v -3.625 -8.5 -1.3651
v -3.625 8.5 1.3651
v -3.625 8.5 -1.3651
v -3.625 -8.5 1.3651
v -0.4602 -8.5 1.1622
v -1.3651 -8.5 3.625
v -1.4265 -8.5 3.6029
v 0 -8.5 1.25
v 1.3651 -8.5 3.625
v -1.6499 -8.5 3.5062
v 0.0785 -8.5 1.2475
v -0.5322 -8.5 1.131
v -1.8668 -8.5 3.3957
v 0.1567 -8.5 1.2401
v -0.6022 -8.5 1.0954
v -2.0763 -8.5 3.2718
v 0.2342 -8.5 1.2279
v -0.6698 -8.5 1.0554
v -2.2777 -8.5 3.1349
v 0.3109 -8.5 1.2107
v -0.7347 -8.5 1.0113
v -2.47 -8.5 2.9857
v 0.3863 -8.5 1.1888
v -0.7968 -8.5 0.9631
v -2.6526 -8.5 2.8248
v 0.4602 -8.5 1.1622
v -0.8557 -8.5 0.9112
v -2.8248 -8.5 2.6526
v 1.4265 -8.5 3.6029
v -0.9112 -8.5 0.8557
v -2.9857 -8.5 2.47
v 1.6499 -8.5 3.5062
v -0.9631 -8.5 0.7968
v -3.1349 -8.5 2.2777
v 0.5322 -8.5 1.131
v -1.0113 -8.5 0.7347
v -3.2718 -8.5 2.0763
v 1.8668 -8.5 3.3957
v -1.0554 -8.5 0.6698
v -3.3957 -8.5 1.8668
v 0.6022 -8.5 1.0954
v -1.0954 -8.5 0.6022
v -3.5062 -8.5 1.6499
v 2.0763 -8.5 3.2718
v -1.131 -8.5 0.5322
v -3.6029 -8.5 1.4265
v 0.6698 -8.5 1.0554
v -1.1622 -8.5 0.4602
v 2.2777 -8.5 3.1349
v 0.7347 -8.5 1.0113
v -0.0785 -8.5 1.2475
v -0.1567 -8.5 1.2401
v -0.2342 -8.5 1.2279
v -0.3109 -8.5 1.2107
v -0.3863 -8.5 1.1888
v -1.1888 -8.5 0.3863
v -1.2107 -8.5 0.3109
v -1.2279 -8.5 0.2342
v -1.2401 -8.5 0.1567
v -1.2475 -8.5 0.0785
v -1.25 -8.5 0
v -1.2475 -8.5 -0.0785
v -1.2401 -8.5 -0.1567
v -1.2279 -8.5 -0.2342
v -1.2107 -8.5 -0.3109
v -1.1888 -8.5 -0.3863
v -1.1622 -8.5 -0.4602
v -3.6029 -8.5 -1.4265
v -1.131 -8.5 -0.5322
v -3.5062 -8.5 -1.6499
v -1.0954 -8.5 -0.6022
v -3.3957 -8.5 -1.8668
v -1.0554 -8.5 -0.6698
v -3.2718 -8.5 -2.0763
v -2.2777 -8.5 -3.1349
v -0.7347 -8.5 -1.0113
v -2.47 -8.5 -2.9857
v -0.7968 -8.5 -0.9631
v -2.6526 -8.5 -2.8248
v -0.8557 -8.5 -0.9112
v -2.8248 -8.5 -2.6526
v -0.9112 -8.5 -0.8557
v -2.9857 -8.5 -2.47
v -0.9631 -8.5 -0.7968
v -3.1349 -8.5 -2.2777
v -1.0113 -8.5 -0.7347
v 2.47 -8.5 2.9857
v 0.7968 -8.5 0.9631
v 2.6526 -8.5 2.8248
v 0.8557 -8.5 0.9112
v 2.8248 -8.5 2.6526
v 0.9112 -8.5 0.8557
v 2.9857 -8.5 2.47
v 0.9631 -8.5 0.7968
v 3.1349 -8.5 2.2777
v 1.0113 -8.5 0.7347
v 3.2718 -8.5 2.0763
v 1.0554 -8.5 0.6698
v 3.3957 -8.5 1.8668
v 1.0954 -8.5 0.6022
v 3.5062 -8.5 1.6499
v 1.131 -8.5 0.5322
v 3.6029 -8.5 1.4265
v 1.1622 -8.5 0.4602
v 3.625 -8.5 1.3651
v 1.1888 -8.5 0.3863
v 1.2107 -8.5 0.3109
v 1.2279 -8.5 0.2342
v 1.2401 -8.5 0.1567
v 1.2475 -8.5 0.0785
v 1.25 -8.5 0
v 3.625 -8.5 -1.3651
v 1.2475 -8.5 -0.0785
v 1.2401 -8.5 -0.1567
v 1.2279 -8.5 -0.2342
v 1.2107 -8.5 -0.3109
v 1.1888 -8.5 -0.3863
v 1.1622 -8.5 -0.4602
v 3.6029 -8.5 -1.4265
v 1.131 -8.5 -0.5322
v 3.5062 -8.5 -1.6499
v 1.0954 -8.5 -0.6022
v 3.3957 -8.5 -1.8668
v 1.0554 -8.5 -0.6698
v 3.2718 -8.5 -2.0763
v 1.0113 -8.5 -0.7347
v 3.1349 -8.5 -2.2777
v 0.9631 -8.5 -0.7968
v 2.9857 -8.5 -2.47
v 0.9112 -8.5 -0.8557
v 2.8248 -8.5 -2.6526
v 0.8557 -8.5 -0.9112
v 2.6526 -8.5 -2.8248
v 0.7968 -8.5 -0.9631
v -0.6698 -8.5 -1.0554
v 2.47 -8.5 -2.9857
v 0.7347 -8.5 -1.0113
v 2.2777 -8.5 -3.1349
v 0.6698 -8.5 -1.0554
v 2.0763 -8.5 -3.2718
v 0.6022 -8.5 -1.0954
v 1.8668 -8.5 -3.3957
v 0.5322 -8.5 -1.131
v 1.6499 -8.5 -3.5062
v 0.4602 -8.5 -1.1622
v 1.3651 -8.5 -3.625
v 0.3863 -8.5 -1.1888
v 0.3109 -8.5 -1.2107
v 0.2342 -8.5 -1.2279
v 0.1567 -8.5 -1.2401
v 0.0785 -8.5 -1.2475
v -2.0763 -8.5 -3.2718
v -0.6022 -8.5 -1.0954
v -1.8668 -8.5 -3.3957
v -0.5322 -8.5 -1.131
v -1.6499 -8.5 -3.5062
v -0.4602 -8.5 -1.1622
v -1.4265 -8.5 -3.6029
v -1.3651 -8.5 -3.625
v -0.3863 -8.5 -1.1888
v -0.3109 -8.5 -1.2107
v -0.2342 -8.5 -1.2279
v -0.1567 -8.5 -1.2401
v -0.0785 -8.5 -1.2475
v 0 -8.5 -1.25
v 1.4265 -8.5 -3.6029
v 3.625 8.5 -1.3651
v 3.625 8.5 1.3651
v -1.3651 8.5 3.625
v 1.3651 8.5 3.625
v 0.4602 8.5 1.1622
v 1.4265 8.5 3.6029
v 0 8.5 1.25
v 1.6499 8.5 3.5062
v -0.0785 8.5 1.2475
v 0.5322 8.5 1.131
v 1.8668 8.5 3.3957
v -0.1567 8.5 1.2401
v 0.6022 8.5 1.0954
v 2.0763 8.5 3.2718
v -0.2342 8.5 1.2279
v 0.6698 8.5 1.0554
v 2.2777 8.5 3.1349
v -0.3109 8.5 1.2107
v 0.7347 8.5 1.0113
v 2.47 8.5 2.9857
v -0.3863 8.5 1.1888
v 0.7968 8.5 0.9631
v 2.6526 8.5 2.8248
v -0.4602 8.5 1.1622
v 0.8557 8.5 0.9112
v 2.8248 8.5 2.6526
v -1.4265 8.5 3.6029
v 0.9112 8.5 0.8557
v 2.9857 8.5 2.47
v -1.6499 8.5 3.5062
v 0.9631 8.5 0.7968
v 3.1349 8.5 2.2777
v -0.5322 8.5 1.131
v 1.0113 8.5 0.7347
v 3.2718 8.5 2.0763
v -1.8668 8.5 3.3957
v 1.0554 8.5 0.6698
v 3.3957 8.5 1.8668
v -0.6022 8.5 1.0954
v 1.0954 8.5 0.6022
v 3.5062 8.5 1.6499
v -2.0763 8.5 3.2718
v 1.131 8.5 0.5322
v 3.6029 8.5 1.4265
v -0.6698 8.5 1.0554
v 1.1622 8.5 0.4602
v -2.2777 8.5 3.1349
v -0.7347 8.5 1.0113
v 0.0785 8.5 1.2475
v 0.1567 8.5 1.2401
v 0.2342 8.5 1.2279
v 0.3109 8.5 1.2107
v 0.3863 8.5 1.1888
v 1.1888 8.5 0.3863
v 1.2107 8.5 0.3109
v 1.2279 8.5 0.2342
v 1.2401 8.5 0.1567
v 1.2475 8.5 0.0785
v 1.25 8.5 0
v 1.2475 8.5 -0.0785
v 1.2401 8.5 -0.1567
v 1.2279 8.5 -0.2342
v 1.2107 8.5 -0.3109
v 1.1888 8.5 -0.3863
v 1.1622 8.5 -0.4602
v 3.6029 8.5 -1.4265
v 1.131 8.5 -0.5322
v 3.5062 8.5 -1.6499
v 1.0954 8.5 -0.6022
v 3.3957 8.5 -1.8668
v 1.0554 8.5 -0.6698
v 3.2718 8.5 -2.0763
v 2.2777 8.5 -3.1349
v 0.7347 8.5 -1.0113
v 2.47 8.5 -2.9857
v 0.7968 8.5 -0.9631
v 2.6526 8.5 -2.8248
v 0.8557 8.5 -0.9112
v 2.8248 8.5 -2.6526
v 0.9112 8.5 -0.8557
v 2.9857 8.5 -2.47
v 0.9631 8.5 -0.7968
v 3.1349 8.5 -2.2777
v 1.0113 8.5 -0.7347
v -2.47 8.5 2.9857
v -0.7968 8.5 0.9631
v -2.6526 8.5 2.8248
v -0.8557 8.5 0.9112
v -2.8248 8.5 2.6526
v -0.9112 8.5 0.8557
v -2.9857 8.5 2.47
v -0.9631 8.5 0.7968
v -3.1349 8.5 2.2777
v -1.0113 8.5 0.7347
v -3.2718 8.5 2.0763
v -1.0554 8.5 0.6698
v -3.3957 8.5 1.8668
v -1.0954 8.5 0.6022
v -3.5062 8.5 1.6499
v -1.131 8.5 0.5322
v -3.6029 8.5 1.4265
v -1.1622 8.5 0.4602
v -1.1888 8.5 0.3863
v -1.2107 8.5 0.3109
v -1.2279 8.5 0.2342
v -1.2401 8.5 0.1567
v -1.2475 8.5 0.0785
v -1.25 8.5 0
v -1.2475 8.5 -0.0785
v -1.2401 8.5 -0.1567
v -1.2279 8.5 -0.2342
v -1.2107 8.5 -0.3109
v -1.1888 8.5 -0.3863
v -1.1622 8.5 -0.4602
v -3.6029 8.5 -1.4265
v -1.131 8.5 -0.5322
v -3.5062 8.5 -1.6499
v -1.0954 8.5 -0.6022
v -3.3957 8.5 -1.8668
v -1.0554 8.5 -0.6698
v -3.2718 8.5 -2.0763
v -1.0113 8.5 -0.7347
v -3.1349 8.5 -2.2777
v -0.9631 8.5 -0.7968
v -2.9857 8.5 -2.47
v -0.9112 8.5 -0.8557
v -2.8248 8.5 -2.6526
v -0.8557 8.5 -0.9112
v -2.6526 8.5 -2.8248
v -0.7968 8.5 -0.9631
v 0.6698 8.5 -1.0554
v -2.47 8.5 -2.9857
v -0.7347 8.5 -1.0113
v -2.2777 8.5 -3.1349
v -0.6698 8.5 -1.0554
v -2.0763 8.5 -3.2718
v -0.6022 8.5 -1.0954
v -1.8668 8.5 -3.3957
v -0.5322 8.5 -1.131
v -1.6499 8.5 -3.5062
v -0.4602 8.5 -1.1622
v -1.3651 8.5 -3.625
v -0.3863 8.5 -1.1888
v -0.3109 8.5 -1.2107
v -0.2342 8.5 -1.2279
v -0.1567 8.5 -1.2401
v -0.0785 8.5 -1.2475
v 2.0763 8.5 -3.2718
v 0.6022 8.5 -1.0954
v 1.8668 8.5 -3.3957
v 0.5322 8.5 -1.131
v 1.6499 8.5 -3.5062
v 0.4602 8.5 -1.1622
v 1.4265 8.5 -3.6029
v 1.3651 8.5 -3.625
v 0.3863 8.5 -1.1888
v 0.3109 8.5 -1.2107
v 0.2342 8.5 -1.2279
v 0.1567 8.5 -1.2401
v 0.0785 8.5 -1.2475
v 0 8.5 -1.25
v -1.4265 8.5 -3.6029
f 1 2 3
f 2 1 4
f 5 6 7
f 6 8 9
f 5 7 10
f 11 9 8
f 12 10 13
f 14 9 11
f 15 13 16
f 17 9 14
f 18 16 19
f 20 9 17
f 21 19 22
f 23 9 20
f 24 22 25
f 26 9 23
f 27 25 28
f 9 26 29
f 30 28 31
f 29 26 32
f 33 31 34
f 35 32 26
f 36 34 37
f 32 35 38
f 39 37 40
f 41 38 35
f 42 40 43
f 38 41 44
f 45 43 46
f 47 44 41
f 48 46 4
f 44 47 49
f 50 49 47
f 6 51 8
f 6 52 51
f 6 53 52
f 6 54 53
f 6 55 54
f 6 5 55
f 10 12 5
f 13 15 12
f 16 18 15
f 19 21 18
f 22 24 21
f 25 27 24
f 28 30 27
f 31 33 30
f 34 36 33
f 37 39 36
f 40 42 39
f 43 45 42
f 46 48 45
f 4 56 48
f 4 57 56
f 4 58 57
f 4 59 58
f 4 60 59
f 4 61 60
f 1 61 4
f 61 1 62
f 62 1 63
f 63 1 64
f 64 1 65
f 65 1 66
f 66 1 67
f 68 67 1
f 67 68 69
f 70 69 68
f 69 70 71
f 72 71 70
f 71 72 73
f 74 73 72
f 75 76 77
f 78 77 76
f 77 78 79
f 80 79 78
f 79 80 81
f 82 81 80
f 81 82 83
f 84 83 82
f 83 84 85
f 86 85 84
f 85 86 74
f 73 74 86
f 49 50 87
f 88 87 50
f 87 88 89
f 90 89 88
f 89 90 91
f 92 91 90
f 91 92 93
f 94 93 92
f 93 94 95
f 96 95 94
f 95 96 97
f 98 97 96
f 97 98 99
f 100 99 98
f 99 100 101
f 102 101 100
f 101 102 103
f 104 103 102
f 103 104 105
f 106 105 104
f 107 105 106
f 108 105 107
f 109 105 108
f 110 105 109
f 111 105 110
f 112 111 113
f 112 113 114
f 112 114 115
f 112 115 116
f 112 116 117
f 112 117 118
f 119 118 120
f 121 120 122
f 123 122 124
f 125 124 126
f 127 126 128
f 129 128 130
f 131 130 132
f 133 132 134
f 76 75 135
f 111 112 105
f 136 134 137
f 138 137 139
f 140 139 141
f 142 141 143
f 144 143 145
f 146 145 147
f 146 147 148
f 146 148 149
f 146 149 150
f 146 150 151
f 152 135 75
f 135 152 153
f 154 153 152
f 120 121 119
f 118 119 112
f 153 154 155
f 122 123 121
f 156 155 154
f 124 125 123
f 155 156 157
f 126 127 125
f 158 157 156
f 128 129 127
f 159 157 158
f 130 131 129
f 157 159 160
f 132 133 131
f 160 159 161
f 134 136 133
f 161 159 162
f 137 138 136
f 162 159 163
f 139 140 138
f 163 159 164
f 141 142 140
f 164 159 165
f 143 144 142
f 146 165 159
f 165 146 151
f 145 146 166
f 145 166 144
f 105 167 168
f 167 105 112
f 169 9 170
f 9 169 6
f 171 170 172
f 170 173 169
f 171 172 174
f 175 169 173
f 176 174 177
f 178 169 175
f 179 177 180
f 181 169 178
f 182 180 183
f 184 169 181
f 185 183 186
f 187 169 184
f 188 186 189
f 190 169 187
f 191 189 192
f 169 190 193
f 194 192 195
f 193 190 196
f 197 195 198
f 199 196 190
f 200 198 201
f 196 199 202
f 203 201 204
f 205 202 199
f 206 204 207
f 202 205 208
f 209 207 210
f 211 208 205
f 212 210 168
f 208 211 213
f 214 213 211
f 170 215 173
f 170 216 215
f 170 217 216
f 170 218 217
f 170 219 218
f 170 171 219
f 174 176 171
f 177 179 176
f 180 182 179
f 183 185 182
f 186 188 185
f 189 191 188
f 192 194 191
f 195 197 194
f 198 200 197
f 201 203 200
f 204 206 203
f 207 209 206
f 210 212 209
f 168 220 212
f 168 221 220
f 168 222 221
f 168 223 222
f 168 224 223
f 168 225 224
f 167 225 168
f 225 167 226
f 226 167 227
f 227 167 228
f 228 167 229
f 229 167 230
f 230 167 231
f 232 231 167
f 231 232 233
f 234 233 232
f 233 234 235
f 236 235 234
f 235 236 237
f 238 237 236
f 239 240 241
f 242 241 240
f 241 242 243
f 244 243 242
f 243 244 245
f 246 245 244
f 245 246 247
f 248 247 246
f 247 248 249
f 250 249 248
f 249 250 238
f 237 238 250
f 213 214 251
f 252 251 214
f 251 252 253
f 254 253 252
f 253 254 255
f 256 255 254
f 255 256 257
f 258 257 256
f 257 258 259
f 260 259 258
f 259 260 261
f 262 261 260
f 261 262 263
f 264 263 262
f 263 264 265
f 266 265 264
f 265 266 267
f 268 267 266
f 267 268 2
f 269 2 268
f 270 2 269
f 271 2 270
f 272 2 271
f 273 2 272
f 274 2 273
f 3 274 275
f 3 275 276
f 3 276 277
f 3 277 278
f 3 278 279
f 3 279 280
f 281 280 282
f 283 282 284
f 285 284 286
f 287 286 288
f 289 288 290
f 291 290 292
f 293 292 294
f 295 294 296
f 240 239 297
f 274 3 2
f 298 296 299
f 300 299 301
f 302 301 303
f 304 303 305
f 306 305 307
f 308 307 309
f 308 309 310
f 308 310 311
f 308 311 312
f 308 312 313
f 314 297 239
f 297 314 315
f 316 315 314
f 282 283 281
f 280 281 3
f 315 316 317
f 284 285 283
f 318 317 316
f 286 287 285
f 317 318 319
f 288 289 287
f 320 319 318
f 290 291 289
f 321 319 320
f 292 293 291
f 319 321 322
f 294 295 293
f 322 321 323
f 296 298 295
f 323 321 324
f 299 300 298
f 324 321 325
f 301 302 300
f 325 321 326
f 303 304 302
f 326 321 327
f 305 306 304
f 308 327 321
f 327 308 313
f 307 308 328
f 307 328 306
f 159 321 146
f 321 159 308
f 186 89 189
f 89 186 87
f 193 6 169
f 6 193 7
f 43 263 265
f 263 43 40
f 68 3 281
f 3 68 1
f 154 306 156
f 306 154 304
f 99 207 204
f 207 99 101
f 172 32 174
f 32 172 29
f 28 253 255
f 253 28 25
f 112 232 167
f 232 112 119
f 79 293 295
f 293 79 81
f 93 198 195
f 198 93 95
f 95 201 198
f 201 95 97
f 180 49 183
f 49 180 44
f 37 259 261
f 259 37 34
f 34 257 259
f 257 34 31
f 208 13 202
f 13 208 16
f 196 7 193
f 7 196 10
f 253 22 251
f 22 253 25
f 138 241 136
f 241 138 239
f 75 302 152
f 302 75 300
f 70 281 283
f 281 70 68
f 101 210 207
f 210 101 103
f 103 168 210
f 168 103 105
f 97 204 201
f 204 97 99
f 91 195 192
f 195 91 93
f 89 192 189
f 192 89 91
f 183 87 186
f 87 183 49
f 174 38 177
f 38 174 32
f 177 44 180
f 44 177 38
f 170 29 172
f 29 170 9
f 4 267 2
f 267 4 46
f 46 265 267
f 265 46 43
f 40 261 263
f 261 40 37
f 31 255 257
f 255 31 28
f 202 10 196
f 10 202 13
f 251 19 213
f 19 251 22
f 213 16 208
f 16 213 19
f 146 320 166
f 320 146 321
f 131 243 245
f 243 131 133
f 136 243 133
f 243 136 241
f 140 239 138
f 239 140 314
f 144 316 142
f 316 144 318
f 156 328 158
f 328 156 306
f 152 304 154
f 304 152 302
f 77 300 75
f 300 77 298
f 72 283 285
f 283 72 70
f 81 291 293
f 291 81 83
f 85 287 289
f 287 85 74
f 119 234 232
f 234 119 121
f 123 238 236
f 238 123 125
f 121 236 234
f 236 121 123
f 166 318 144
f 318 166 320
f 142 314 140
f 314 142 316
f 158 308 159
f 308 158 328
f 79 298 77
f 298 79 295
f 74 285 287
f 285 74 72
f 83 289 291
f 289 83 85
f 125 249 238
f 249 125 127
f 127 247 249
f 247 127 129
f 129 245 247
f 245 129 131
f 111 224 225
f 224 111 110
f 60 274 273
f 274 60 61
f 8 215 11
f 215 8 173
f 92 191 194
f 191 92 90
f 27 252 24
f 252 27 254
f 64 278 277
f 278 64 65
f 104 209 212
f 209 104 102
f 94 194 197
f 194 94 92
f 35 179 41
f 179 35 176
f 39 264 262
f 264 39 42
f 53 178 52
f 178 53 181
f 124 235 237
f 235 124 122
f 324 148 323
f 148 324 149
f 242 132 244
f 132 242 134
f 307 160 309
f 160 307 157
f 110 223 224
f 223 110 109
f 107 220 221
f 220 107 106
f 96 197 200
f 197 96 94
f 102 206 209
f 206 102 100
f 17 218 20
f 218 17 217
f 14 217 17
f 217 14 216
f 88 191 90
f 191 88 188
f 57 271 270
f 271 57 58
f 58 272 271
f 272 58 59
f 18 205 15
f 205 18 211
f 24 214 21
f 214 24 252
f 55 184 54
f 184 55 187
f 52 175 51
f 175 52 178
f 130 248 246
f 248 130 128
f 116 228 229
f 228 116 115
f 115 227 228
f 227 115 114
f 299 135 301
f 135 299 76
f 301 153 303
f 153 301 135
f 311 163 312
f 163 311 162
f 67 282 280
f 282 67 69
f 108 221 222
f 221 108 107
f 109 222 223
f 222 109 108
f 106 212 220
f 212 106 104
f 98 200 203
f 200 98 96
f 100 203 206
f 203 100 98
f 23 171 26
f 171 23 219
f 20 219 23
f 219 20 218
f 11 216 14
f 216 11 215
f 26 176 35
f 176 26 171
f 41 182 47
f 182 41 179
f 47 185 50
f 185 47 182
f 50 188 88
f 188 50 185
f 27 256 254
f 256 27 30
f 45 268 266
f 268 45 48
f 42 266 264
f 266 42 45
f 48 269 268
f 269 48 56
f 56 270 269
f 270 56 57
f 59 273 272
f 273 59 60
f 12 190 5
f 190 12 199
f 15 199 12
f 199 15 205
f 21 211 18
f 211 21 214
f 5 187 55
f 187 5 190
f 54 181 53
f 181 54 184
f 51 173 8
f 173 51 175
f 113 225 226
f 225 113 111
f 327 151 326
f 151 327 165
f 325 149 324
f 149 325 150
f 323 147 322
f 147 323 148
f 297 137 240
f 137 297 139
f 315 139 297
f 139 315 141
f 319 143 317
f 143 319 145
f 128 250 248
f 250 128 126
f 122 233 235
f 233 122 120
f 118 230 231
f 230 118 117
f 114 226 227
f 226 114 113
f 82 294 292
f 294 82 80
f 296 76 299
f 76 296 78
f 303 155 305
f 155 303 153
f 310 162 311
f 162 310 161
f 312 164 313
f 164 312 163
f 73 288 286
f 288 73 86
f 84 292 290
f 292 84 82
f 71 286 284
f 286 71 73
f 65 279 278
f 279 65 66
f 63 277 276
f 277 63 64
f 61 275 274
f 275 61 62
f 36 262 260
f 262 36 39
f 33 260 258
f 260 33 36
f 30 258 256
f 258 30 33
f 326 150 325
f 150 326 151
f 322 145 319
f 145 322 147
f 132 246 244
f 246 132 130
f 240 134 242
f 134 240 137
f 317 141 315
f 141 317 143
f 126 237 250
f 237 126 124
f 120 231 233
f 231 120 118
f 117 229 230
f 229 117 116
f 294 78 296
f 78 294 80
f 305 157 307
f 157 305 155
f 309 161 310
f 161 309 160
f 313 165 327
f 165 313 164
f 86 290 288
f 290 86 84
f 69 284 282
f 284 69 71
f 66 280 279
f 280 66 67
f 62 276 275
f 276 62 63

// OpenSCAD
module make_motor_wheel_axle(buffer=0, hole=1){
    // gap is 12mm, with 2.5mm inset on each side to a 8mm hole
    length = 12+2.5+2.5;
    rotate([90,0,0]){
        difference(){
            intersection(){
                cube([7.5+buffer,7.5+buffer,length], center=true);
                cylinder(d=8+buffer, h=length+1, center=true, $fn=100);
            }
            //translate([2,0,0])cube([7,1,length+1], center=true);
            if(hole)
            cylinder(d=2.5, h=50, center=true, $fn=100);
        }
    }
}

module make_motor_wheel_axle_cutout(){
    make_motor_wheel_axle(buffer=0.5, hole=0);
}

make_motor_wheel_axle(buffer=-0.25, hole=1);
